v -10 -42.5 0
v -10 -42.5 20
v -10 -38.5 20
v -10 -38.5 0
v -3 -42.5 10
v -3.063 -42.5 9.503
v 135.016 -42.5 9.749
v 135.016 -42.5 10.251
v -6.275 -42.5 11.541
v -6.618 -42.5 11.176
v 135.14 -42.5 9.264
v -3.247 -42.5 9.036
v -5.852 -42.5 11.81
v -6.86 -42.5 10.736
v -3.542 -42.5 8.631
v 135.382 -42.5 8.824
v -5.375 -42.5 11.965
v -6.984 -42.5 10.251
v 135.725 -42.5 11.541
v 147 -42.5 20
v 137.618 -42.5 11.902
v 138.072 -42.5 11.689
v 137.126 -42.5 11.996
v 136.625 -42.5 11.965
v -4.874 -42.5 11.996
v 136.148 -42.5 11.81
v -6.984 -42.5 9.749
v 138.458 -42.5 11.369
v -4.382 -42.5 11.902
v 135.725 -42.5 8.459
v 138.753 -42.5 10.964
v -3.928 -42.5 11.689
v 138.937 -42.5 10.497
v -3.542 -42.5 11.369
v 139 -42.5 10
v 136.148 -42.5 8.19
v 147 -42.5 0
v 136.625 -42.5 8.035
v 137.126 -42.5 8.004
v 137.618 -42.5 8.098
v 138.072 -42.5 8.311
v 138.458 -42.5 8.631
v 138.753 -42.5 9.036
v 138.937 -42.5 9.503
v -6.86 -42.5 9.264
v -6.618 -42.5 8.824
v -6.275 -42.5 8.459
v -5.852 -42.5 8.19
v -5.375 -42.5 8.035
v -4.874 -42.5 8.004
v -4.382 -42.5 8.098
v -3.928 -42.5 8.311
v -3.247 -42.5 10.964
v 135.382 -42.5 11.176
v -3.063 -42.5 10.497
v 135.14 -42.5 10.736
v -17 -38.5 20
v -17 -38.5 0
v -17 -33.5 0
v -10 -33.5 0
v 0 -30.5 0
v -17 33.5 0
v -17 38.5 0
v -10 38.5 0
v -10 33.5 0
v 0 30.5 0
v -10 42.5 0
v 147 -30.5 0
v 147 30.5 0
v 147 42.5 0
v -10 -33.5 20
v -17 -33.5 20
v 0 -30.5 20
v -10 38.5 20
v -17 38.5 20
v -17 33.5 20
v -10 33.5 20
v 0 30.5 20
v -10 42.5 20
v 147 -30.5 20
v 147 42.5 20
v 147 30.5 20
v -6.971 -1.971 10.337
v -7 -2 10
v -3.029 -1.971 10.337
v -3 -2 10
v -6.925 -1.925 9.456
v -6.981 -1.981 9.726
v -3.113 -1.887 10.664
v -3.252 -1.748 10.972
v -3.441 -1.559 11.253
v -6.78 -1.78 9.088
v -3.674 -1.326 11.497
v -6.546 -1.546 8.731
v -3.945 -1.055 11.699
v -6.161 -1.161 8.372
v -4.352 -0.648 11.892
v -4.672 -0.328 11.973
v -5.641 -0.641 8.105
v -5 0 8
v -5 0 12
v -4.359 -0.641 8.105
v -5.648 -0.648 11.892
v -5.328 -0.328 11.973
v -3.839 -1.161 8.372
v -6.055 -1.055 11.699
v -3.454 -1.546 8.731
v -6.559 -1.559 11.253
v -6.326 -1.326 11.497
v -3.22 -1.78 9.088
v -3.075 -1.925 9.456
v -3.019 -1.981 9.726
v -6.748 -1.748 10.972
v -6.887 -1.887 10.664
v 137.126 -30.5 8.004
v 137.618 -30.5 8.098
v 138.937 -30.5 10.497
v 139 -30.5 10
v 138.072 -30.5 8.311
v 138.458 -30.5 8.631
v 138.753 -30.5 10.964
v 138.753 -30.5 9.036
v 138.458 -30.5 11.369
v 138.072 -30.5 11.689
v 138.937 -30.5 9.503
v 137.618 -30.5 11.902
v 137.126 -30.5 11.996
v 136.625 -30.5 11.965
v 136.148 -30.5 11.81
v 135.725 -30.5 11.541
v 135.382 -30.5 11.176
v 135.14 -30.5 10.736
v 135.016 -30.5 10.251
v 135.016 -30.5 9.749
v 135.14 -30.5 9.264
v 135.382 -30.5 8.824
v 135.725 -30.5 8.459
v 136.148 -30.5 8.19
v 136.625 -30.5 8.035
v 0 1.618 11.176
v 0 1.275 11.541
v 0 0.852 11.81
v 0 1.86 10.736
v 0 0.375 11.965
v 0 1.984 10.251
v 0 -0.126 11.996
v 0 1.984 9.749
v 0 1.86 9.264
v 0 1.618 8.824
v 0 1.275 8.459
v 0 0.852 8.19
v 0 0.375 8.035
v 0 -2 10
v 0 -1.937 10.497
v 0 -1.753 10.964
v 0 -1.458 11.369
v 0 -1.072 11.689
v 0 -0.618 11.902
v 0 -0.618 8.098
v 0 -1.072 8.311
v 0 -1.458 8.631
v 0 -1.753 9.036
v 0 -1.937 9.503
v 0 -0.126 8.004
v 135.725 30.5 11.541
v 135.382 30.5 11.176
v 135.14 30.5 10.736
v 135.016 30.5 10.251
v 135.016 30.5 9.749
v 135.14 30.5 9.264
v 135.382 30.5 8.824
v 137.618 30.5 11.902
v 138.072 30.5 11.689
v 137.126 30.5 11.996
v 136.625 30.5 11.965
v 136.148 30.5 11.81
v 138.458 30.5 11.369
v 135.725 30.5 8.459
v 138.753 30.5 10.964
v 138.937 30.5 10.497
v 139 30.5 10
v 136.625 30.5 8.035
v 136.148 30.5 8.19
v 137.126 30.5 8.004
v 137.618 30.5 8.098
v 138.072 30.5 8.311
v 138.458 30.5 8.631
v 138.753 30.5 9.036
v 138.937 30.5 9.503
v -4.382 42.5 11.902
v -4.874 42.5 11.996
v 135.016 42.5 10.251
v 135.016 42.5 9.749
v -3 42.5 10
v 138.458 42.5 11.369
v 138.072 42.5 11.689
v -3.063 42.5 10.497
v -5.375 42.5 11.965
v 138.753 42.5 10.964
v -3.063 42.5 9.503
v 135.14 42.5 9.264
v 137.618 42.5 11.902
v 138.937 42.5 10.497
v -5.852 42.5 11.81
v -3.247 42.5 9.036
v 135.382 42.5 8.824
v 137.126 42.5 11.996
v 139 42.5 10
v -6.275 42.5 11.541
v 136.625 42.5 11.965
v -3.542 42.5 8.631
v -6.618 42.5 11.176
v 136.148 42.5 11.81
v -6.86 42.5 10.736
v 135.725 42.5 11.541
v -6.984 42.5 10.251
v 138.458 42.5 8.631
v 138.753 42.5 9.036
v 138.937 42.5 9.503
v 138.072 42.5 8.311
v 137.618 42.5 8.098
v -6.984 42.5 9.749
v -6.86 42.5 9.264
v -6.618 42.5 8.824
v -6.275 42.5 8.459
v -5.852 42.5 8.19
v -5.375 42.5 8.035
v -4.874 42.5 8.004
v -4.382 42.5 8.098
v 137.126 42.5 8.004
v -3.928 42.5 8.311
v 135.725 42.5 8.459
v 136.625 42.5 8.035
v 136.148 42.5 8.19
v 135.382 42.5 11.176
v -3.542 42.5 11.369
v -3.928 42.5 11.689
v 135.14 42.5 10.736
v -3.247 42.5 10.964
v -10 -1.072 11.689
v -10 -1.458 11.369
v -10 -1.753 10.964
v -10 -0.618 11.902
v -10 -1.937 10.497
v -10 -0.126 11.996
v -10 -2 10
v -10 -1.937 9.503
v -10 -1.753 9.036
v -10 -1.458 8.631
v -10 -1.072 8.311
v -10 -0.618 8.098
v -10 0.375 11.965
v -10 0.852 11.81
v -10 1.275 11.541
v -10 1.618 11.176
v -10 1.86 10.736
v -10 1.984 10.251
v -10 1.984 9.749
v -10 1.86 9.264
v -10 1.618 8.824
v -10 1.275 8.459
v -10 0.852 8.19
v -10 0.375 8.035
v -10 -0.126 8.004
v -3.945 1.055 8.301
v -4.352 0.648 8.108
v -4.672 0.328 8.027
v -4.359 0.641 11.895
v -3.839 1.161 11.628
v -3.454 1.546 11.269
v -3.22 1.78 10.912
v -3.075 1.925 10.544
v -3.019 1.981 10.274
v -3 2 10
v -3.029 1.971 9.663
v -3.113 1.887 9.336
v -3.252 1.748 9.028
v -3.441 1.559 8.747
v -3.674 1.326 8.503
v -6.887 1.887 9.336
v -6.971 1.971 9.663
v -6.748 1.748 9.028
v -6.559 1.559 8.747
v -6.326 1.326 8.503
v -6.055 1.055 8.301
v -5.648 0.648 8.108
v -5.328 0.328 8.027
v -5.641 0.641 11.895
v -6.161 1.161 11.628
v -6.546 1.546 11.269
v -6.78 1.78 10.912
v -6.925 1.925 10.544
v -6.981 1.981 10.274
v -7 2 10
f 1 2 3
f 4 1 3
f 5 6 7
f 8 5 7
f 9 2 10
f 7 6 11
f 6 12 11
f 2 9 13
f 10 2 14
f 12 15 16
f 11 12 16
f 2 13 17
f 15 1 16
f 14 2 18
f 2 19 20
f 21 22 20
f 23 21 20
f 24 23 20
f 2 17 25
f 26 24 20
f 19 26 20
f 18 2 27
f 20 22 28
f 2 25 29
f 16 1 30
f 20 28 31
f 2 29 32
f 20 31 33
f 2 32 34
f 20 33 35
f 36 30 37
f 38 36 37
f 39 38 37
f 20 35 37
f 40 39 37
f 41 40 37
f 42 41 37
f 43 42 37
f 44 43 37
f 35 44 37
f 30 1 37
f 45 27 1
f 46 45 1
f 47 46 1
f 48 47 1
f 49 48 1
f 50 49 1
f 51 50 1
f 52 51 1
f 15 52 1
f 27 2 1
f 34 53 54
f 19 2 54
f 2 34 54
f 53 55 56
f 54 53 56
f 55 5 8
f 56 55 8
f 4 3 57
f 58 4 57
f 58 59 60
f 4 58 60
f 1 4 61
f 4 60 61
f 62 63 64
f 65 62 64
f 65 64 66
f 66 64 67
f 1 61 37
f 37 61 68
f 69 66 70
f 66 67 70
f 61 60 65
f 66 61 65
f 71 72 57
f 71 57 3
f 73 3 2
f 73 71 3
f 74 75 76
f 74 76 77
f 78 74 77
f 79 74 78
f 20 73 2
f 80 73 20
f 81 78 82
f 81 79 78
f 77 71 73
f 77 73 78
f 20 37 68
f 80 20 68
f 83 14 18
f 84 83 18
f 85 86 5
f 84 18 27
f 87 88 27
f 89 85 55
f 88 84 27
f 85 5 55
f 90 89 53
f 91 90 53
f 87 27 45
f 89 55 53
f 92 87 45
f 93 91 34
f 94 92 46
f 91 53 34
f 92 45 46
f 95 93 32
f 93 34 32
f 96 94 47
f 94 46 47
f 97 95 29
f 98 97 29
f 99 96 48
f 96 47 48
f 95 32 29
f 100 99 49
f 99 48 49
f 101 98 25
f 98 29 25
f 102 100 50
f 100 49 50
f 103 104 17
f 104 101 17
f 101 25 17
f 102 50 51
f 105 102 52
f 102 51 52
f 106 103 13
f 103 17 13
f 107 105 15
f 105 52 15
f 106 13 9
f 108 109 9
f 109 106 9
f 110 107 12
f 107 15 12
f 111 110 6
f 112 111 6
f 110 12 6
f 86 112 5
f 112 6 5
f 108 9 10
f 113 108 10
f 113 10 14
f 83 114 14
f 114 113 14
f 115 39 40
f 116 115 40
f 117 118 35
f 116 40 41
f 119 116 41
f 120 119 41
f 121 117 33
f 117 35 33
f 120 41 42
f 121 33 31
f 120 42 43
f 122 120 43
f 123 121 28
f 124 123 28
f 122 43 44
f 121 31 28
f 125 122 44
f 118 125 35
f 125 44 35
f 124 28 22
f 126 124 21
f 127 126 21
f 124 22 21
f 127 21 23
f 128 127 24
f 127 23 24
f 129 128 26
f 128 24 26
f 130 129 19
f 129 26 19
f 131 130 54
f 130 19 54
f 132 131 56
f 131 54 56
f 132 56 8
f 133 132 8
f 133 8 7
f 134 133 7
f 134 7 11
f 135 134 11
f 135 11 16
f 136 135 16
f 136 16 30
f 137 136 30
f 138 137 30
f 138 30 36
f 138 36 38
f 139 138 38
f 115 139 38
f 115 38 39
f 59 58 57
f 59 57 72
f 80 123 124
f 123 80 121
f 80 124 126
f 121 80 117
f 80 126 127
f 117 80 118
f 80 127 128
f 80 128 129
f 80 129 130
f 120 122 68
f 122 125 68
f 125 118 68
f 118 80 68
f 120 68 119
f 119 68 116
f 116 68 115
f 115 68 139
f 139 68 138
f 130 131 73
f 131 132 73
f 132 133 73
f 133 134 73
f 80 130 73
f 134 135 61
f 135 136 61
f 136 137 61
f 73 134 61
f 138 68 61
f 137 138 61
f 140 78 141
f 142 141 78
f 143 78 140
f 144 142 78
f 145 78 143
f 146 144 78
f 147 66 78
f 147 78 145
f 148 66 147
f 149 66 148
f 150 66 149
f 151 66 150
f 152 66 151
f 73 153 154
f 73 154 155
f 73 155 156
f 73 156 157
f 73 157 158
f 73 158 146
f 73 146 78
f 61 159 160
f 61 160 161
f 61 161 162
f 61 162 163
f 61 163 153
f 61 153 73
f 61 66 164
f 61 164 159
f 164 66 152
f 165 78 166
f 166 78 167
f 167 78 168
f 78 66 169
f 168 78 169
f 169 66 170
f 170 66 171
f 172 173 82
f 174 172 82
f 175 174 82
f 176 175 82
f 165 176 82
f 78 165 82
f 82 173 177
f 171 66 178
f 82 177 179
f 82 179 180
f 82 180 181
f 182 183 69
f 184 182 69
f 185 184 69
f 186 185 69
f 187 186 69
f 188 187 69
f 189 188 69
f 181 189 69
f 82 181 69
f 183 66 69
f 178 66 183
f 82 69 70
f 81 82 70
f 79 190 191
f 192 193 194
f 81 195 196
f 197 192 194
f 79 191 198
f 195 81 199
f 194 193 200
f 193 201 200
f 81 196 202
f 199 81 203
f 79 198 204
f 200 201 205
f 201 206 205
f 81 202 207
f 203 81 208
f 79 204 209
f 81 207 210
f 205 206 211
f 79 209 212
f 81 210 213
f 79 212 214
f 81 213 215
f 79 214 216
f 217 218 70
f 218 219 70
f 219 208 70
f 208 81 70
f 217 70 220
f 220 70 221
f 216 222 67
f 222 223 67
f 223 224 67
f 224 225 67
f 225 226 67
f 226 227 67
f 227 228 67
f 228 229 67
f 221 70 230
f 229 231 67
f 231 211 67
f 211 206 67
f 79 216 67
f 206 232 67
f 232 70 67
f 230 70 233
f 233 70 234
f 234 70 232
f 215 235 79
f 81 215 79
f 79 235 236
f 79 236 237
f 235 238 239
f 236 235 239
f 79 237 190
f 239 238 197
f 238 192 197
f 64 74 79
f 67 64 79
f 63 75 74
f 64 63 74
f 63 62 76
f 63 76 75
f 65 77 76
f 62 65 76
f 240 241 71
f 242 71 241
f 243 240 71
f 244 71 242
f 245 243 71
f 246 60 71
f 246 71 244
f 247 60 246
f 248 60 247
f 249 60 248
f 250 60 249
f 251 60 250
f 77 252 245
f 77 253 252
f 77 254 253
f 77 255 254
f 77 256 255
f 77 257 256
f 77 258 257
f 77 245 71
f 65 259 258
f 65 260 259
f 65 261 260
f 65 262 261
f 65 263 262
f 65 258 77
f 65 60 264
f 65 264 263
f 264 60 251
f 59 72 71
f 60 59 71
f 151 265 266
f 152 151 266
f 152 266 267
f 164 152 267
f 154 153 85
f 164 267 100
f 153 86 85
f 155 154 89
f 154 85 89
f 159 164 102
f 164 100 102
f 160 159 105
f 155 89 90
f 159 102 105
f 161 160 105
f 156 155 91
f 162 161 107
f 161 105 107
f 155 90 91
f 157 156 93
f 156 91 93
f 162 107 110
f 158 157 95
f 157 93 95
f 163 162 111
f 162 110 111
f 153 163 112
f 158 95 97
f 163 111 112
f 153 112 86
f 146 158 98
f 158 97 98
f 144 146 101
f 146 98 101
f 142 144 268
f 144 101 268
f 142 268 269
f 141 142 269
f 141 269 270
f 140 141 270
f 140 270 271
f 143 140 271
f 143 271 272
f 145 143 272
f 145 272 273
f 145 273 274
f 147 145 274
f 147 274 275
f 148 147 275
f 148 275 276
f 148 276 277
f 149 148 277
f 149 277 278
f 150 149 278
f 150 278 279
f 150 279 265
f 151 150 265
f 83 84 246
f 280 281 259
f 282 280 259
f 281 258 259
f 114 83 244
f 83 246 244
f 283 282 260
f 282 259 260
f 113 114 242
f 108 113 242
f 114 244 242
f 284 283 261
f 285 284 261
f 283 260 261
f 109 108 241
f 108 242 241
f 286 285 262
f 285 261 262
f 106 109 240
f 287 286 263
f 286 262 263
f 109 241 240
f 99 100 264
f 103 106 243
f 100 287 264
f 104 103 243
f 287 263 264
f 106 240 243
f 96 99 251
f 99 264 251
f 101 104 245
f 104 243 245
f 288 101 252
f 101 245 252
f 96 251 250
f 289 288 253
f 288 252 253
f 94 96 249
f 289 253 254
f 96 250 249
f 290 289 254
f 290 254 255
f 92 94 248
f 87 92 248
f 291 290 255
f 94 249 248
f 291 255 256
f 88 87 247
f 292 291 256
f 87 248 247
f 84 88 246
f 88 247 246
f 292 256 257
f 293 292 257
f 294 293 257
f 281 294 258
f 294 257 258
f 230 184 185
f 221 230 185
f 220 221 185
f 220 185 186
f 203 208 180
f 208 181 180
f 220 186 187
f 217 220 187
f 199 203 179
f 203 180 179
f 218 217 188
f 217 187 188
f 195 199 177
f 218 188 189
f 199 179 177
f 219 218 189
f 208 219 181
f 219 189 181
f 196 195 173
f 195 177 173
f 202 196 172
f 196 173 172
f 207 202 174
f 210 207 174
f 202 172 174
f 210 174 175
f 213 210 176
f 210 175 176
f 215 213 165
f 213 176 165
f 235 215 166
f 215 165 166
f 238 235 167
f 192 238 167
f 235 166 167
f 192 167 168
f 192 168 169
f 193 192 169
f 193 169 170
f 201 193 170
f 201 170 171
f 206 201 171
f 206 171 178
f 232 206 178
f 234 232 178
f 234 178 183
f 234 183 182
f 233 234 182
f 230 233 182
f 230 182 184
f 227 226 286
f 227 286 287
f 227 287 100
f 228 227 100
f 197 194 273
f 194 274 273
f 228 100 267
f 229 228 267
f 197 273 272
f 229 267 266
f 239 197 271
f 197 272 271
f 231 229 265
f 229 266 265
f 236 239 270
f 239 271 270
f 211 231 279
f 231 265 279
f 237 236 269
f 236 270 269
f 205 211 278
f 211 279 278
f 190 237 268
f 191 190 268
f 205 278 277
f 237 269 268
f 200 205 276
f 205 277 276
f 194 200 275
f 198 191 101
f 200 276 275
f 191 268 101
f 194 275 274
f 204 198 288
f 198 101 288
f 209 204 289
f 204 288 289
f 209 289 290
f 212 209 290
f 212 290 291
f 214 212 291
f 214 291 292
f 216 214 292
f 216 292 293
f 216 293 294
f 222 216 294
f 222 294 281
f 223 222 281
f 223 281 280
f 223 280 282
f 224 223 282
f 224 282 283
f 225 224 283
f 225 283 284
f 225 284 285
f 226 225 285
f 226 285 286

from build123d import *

# Parameters (mm, degrees)
PAD_DEPTH       = 20
SKETCH004_R     = 2
POCKET002_DEPTH = 157.001
SKETCH005_R     = 2
POCKET003_DEPTH = 85.001


with BuildPart() as part:
    # Sketch → Pad (new body)
    with BuildSketch(Plane.XY):
        Polygon((-10, -42.5), (147, -42.5), (147, -30.5), (0, -30.5), (0, 30.5), (147, 30.5), (147, 42.5), (-10, 42.5), (-10, 38.5), (-17, 38.5), (-17, 33.5), (-10, 33.5), (-10, -33.5), (-17, -33.5), (-17, -38.5), (-10, -38.5), align=None)
    extrude(amount=PAD_DEPTH)

    # Sketch004 → Pocket002 (cut, through all)
    with BuildSketch(Plane(origin=(-10, 0, 0), x_dir=(0, -1, 0), z_dir=(-1, 0, 0))):
        with Locations((0, 10)):
            Circle(SKETCH004_R)
    extrude(amount=-POCKET002_DEPTH, mode=Mode.SUBTRACT)

    # Sketch005 → Pocket003 (cut, through all)
    with BuildSketch(Plane.XZ.offset(42.5)):
        with Locations((-5, 10)):
            Circle(SKETCH005_R)
        with Locations((137, 10)):
            Circle(SKETCH005_R)
    extrude(amount=-POCKET003_DEPTH, mode=Mode.SUBTRACT)


solid = part.part
